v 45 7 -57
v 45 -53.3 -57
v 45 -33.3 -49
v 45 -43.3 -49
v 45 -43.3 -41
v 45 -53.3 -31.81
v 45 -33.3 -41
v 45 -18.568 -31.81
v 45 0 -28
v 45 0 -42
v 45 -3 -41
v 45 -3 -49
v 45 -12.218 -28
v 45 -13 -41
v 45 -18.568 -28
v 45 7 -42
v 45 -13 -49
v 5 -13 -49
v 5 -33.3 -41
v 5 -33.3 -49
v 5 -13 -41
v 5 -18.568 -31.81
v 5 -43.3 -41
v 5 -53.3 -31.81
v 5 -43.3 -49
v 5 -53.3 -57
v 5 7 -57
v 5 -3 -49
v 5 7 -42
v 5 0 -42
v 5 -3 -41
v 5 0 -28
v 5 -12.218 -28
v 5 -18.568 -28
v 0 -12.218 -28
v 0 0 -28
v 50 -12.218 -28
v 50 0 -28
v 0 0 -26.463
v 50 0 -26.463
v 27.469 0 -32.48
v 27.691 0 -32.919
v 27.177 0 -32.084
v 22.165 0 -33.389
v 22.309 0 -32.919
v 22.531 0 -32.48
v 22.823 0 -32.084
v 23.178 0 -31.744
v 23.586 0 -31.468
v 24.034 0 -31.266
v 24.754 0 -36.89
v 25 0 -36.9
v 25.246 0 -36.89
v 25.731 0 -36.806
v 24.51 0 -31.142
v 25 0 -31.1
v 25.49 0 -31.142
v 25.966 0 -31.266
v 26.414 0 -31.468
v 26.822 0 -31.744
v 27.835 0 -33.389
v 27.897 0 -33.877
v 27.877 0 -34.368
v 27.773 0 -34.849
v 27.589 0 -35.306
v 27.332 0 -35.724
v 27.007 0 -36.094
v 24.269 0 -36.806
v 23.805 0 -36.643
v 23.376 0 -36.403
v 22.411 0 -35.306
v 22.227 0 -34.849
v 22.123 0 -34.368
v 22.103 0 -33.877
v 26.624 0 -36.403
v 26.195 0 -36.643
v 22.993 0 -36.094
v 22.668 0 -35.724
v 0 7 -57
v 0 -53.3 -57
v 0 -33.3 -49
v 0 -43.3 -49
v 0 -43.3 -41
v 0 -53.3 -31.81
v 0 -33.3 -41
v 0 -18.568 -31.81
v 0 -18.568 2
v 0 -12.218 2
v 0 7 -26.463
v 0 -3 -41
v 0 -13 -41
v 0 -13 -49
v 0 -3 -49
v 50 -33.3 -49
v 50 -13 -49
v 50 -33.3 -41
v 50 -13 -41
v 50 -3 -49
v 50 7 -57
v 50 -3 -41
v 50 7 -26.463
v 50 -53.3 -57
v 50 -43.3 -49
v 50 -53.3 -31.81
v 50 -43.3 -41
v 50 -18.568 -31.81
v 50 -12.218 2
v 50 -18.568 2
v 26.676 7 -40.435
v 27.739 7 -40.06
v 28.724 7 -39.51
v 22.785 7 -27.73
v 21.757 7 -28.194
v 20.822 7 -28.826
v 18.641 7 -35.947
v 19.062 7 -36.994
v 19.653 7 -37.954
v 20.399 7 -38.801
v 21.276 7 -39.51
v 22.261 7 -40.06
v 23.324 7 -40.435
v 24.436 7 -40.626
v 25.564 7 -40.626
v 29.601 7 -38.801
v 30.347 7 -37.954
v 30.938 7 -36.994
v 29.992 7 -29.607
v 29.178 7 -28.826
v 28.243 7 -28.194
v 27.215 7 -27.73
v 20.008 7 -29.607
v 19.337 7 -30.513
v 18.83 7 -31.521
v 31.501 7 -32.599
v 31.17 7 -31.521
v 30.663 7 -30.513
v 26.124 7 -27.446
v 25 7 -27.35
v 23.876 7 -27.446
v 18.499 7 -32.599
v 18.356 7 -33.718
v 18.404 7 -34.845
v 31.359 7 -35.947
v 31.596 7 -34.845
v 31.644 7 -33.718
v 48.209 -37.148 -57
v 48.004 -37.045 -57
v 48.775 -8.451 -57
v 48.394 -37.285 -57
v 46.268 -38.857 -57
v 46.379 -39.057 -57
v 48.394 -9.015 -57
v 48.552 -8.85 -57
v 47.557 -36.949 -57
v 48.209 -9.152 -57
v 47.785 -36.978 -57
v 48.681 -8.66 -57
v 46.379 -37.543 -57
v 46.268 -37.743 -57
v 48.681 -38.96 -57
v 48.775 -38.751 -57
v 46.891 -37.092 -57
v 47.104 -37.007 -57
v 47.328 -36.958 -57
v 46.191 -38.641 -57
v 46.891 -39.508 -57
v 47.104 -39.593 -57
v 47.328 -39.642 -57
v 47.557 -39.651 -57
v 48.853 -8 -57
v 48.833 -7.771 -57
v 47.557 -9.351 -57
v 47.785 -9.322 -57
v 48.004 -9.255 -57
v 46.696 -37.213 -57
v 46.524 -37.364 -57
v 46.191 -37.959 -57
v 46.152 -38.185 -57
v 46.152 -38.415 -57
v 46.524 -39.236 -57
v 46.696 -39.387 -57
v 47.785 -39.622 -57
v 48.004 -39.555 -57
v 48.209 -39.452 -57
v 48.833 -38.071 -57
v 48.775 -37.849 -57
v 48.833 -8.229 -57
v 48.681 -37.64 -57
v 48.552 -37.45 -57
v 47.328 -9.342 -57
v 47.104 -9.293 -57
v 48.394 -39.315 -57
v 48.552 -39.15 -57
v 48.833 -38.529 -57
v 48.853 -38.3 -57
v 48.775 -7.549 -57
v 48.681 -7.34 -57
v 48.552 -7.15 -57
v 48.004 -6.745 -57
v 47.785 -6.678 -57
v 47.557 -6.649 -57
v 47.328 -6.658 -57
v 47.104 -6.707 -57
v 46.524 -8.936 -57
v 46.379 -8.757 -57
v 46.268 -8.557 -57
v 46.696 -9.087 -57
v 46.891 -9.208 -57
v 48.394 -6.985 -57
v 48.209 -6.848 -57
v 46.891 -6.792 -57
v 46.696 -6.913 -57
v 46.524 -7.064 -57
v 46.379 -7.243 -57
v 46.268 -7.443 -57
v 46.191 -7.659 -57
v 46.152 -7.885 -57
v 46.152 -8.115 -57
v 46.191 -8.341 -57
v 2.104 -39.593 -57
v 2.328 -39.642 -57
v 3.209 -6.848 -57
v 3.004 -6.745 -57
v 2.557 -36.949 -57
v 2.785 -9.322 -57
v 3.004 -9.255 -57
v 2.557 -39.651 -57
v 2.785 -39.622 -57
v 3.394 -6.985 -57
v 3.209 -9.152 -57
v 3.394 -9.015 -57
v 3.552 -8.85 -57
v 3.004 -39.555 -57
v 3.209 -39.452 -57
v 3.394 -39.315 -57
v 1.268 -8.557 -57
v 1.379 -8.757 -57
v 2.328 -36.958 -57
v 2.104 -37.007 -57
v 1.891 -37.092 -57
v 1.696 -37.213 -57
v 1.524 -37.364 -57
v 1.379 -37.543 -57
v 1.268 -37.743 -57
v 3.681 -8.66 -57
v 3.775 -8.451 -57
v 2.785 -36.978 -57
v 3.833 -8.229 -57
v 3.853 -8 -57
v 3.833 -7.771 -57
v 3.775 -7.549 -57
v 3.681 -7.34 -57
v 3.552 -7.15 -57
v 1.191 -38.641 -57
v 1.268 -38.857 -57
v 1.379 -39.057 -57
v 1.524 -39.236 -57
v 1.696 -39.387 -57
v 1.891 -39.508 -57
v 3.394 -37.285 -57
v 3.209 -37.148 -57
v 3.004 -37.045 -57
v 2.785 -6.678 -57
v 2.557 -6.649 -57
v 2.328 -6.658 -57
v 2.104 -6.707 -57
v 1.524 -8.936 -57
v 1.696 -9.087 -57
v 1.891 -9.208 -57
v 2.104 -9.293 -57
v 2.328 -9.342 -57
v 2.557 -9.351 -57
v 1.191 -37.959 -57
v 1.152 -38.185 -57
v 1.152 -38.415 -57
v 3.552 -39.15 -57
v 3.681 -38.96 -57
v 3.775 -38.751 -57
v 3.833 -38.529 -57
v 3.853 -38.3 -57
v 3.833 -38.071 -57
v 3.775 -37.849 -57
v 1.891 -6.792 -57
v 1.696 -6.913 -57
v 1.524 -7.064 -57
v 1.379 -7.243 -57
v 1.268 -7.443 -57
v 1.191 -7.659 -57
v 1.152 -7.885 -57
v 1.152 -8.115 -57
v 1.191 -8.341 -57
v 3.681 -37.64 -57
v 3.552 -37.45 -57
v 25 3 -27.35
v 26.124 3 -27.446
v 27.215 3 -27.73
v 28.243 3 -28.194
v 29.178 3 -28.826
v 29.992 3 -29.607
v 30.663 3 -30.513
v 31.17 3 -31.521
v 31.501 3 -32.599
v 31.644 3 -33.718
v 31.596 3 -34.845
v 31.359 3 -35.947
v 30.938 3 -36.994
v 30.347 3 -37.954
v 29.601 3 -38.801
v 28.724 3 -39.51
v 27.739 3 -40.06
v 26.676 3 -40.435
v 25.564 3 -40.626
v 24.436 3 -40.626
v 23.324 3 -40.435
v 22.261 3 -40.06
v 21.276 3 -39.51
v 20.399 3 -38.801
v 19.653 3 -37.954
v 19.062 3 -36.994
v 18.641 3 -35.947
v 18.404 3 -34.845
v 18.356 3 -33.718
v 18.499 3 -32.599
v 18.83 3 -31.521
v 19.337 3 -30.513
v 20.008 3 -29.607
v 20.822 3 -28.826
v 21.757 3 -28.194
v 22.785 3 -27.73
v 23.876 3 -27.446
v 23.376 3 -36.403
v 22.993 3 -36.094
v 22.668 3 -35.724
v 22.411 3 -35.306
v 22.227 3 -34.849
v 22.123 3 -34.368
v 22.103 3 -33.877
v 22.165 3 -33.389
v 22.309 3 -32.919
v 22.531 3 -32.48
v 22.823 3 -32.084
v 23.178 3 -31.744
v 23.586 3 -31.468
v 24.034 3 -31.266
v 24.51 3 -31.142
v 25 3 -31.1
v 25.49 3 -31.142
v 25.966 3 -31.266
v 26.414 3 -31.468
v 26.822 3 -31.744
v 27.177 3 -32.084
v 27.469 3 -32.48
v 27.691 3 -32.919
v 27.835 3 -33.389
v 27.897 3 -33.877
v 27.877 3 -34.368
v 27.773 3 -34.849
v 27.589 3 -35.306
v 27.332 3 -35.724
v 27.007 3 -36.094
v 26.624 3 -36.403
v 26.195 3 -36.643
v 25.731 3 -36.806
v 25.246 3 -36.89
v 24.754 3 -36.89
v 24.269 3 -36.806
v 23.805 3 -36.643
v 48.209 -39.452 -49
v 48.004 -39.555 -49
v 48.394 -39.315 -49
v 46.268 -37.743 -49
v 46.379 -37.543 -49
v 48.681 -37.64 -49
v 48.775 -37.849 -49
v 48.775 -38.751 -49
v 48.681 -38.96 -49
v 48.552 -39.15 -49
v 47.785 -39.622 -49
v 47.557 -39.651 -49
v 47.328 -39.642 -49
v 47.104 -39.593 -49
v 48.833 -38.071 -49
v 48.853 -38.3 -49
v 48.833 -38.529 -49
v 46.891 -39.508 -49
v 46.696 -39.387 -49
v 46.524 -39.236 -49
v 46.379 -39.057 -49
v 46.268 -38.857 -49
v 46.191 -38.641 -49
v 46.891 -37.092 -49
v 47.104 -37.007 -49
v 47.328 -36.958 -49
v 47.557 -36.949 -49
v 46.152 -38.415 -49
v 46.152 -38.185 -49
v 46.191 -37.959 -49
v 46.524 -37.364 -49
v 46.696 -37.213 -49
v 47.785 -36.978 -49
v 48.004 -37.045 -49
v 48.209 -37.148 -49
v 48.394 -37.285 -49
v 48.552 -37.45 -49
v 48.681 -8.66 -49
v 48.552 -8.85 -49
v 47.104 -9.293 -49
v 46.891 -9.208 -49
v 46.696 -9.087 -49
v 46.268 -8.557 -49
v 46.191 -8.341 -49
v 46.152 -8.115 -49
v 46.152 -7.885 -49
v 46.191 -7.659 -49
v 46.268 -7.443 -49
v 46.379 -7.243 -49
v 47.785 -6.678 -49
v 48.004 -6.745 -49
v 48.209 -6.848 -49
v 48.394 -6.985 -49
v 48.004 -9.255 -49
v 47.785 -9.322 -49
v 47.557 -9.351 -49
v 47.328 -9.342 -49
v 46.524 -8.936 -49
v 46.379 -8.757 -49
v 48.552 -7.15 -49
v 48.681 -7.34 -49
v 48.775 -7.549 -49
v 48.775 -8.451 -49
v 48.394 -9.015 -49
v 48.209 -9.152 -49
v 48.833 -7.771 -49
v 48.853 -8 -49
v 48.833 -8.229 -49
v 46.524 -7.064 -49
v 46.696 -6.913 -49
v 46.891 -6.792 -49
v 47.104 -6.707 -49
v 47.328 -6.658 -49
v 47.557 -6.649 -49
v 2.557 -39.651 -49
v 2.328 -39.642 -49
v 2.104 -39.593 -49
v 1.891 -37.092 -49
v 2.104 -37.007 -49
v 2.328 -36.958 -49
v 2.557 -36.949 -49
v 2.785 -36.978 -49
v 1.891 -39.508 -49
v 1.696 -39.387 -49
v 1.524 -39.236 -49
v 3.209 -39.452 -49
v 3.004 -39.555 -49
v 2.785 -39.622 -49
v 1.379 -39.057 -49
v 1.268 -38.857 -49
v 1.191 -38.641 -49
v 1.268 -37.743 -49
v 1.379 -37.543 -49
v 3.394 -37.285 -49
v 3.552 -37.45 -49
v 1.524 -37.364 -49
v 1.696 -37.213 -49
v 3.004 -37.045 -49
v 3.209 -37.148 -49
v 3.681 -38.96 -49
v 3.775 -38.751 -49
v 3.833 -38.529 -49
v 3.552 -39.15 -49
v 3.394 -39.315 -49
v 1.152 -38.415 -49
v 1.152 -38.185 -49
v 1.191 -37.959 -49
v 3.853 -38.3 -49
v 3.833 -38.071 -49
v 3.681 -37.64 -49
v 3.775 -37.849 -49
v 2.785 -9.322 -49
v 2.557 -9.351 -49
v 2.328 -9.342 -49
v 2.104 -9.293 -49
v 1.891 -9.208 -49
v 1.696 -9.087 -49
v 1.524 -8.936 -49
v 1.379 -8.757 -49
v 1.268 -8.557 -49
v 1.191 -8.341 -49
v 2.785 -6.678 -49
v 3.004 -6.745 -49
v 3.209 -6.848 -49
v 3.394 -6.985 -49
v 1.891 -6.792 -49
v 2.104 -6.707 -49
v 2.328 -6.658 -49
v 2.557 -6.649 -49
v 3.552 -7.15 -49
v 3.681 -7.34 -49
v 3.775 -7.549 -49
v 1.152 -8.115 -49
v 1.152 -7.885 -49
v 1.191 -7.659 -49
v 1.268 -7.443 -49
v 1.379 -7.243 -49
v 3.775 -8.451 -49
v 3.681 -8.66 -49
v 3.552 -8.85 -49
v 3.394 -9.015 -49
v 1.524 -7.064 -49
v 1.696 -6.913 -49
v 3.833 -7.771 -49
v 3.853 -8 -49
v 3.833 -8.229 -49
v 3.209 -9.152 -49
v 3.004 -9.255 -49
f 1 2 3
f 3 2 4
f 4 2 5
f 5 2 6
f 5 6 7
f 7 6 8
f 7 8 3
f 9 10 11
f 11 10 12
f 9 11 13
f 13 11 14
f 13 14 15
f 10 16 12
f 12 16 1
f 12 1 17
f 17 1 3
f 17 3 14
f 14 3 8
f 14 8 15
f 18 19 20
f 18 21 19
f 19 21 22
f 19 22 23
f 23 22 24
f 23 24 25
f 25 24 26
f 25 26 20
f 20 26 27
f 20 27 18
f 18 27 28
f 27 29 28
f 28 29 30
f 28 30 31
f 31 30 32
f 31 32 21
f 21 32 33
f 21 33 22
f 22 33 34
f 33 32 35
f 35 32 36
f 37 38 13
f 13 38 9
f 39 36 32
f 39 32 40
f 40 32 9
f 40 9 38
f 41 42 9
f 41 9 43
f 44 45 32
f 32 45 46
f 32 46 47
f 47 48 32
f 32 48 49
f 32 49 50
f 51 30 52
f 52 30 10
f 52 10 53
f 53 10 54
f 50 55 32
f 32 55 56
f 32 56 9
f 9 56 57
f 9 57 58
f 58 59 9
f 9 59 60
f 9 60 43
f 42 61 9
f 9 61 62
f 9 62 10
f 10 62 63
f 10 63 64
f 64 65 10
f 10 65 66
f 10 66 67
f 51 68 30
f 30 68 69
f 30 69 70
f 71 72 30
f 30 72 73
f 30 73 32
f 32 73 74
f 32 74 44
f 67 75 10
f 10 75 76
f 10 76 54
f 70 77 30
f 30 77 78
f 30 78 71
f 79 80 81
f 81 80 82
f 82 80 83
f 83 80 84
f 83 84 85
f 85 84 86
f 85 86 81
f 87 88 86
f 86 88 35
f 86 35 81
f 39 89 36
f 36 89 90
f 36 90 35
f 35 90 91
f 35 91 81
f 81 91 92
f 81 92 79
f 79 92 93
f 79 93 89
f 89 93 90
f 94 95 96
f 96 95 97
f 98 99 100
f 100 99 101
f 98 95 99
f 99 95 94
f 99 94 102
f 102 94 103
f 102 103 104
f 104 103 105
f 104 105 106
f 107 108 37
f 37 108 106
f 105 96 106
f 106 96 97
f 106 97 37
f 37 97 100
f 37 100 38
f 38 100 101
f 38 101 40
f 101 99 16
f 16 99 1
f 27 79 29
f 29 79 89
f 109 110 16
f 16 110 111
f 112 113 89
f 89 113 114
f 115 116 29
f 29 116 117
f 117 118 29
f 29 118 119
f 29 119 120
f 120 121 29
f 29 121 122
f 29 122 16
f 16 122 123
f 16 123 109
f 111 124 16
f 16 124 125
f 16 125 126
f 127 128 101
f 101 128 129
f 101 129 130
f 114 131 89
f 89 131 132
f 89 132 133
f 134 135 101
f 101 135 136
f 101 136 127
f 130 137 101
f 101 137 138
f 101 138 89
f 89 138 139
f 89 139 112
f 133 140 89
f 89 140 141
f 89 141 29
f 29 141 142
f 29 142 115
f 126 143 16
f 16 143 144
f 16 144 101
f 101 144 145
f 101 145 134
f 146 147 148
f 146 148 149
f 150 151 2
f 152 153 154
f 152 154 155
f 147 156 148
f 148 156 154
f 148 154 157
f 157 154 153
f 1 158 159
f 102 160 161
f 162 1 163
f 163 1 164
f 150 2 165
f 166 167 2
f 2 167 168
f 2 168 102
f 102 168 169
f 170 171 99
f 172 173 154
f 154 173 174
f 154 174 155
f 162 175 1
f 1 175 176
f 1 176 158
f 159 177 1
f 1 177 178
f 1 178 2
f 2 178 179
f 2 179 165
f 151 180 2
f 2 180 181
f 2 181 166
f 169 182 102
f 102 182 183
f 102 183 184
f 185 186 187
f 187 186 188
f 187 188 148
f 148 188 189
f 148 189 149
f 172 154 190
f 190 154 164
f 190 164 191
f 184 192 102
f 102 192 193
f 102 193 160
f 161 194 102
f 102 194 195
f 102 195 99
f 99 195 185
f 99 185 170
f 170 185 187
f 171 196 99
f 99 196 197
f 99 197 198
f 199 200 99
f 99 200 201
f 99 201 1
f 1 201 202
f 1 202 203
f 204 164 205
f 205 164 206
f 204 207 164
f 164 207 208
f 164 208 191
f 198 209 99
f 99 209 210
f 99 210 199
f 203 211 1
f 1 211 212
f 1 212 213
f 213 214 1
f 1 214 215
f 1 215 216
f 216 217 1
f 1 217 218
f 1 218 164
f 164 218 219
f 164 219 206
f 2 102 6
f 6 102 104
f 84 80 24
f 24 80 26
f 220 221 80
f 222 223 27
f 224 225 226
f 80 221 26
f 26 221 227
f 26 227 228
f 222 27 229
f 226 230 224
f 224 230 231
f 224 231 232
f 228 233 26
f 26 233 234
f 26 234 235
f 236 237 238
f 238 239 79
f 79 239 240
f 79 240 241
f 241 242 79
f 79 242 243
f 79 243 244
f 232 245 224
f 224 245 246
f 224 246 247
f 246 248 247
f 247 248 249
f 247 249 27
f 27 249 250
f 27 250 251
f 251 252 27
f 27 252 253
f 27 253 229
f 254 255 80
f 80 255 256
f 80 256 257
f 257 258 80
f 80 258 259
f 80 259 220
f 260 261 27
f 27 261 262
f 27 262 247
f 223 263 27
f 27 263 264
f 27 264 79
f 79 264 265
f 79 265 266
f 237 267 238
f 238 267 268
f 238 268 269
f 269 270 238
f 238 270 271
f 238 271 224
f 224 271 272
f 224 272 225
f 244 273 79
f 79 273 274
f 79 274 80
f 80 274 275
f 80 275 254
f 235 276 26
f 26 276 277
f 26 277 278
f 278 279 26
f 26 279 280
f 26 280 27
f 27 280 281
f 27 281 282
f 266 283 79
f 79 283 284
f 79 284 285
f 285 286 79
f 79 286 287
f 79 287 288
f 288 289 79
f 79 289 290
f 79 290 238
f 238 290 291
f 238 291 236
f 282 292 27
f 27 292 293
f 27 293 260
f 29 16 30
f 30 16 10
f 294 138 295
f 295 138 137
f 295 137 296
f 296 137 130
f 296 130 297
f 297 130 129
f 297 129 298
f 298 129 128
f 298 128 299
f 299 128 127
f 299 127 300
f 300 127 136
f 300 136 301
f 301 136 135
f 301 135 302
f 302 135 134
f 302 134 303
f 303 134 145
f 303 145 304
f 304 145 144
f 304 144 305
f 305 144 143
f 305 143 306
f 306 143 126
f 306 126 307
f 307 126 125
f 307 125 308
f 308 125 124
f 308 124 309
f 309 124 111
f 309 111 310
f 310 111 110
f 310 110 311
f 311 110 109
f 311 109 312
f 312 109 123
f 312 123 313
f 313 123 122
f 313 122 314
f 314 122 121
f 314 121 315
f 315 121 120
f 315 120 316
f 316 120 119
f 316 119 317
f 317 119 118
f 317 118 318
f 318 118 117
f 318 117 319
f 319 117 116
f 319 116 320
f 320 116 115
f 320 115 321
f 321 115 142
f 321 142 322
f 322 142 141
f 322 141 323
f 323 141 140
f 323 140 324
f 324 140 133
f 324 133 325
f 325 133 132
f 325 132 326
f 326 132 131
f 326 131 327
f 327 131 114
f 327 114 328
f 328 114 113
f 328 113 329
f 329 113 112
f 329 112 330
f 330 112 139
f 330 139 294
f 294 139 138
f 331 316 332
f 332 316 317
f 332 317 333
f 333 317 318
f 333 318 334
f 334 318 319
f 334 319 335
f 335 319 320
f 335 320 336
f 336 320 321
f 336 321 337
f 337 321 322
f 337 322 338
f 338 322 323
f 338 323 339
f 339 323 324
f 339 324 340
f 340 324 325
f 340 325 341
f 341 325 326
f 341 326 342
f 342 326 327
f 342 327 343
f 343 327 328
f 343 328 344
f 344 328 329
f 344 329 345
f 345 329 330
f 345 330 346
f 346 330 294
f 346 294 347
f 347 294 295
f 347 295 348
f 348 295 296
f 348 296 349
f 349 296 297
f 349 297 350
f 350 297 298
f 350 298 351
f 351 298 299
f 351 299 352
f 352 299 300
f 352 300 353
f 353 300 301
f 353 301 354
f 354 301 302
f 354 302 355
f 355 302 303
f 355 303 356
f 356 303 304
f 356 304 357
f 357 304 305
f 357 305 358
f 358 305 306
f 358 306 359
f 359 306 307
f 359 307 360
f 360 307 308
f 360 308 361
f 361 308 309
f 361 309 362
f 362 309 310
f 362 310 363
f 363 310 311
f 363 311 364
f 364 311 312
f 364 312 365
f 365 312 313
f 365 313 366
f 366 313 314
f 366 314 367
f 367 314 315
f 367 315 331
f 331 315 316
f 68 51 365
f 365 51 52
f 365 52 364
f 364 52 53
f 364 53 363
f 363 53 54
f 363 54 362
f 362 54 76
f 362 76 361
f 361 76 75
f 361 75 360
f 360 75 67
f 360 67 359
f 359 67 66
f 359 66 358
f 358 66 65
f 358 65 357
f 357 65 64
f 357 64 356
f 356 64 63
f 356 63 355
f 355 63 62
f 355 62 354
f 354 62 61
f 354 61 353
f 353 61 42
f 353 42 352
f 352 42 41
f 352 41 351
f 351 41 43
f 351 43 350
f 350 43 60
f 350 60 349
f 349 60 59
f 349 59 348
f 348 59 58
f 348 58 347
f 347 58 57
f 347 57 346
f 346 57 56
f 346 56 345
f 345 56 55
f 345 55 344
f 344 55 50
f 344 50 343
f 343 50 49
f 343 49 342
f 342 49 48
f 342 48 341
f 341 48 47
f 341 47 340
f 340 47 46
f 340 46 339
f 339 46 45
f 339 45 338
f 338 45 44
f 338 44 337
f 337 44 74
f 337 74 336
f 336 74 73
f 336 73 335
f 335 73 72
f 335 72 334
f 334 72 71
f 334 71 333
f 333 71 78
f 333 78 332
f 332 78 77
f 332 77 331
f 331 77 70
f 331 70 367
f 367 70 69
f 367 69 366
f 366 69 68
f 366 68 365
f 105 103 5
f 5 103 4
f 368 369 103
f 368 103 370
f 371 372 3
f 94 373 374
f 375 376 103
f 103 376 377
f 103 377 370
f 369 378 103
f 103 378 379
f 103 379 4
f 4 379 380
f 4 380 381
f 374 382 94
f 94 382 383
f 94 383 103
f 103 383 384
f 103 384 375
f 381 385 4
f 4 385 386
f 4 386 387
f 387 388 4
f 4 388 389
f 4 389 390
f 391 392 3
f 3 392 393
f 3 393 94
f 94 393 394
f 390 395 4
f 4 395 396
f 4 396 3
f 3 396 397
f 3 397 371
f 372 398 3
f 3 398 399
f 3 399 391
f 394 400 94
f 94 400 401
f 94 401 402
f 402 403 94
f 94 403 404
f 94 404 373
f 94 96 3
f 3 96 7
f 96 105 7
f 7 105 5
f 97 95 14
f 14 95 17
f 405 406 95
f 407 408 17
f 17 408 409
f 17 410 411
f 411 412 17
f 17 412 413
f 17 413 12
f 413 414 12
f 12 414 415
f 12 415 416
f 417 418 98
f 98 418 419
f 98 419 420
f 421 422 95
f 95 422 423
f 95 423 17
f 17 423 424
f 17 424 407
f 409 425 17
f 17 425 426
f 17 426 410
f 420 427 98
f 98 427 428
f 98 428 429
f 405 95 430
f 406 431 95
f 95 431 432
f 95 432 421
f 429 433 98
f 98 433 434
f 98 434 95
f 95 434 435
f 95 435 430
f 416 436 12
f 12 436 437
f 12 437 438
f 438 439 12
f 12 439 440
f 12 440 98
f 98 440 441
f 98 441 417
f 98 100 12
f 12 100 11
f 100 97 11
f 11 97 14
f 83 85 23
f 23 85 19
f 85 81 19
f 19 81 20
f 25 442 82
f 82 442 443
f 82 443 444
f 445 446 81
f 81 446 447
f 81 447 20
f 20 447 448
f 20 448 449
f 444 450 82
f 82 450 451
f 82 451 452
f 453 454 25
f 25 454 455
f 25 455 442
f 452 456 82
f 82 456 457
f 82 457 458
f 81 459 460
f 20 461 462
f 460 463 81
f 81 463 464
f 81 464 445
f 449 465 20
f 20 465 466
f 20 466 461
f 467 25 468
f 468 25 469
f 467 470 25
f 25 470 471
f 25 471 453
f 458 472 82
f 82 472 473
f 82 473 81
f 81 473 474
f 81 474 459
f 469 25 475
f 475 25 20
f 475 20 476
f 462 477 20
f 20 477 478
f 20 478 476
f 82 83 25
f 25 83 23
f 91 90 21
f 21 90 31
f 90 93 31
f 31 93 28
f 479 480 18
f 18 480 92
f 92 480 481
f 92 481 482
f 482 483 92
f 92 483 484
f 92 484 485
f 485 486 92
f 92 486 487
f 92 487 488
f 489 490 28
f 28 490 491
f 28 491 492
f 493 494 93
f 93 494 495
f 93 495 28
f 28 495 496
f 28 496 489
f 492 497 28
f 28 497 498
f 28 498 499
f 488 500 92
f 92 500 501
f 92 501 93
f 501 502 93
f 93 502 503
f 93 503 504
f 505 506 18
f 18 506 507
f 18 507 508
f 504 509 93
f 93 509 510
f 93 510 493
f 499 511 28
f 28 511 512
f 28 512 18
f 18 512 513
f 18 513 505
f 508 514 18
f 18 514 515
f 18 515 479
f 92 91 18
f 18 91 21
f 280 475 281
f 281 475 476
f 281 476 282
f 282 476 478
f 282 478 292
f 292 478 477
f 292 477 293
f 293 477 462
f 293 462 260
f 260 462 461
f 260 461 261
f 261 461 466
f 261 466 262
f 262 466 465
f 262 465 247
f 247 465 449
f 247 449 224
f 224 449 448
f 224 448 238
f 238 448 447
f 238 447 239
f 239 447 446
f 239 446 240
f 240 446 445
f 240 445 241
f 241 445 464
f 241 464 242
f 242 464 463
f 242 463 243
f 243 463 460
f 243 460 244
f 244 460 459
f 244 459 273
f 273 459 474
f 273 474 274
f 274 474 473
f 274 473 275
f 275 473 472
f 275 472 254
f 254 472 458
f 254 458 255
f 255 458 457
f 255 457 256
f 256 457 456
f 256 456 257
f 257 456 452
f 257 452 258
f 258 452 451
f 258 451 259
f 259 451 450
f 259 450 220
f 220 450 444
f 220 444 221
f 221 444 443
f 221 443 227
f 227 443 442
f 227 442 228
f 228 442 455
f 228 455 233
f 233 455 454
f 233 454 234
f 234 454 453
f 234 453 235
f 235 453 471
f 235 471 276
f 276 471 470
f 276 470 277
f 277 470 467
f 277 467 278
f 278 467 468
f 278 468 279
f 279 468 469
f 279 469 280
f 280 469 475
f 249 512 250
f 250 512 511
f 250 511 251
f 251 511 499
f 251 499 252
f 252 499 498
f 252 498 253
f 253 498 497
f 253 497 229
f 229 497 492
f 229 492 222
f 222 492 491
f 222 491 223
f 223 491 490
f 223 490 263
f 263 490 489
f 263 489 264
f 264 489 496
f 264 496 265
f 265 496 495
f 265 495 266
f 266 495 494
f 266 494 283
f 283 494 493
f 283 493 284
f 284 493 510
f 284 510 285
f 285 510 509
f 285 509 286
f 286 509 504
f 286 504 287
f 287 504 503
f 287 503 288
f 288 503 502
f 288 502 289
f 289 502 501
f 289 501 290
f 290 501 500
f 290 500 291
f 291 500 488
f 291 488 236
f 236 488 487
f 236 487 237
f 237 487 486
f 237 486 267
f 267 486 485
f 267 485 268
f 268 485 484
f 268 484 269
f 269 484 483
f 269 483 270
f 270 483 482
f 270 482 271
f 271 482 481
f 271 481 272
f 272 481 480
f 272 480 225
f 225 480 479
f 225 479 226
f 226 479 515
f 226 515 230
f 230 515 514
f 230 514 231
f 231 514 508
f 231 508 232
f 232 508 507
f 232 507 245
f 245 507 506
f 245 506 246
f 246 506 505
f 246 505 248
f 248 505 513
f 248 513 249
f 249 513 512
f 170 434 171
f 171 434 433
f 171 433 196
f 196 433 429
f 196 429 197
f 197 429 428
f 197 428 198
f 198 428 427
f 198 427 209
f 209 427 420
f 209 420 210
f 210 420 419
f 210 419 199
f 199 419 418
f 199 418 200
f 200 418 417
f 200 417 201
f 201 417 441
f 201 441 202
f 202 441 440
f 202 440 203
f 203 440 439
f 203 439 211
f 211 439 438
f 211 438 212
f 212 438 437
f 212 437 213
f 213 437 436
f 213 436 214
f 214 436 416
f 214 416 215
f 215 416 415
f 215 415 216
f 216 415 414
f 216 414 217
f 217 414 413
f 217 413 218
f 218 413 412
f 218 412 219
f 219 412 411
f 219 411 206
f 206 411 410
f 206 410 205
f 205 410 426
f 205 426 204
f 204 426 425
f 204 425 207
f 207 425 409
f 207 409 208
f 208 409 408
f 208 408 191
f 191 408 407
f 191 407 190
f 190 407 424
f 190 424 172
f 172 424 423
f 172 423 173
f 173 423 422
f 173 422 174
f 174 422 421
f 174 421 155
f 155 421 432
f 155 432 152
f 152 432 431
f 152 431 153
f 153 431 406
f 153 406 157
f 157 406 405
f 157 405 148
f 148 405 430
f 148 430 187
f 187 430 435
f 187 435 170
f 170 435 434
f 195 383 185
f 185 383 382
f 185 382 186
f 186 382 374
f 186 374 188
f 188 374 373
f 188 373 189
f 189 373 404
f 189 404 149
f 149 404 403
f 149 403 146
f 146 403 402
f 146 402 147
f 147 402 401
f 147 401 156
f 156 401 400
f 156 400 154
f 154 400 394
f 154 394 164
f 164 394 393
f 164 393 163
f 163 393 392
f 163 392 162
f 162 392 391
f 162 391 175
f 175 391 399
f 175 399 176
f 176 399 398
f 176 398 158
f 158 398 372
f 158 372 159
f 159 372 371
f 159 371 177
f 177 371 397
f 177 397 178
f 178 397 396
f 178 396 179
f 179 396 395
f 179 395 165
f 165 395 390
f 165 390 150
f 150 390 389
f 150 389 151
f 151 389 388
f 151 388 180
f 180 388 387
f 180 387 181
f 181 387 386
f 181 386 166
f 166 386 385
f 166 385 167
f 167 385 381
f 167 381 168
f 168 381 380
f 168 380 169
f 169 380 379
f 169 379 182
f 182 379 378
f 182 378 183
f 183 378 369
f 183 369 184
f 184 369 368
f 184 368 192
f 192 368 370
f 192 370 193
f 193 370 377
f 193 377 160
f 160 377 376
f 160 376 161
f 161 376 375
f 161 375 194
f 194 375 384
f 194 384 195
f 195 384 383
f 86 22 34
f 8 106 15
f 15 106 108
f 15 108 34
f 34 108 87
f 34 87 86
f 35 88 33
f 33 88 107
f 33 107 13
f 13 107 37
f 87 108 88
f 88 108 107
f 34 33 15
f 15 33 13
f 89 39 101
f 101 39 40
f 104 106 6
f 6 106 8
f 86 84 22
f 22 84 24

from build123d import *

# Parameters (mm, degrees)
SKETCH1_W                 = 50
SKETCH1_H                 = 30
BOSS_EXTRUDE1_DEPTH       = 7
SKETCH2_W                 = 27
SKETCH2_H                 = 60.3
BOSS_EXTRUDE2_DEPTH       = 5
SKETCH3_W                 = 40
SKETCH3_H                 = 7
BOSS_EXTRUDE3_DEPTH       = 12
SKETCH4_R                 = 6.65
CUT_EXTRUDE1_DEPTH        = 4
CUT_EXTRUDE2_REACH        = 96.439
SKETCH5_R                 = 2.9
SKETCH6_W                 = 8
SKETCH6_H                 = 10
CUT_EXTRUDE3_DEPTH        = 93.681659459
F_2_CLEARANCE_HOLE1_D     = 2.7051
F_2_CLEARANCE_HOLE1_DEPTH = 8
SKETCH10_W                = 50
SKETCH10_H                = 7
BOSS_EXTRUDE4_DEPTH       = 2
SKETCH11_W                = 5
SKETCH11_H                = 53.3
BOSS_EXTRUDE5_DEPTH       = 2
SKETCH13_W                = 5
SKETCH13_H                = 6.35
BOSS_EXTRUDE6_DEPTH       = 30
SKETCH14_W                = 30
SKETCH14_H                = 6.35
BOSS_EXTRUDE7_DEPTH       = 40
SKETCH15_W                = 28.462792601
SKETCH15_H                = 7
CUT_EXTRUDE4_DEPTH        = 93.681659459
SKETCH16_W                = 3.81
SKETCH16_H                = 34.732
CUT_EXTRUDE5_DEPTH        = 93.681659459


with BuildPart() as part:
    # Sketch1 → Boss-Extrude1 (new body)
    with BuildSketch(Plane(origin=(0, 0, 0), x_dir=(1, 0, 0), z_dir=(0, 1, 0))):
        with Locations((25, 15)):
            Rectangle(SKETCH1_W, SKETCH1_H)
    extrude(amount=BOSS_EXTRUDE1_DEPTH)

    # Sketch2 → Boss-Extrude2 (add)
    with BuildSketch(Plane(origin=(50, 0, 0), x_dir=(0, 0, -1), z_dir=(1, 0, 0))):
        with Locations((43.5, -23.15)):
            Rectangle(SKETCH2_W, SKETCH2_H)
    boss_extrude2 = extrude(amount=-BOSS_EXTRUDE2_DEPTH)

    # Mirror1: Boss-Extrude2 across plane
    add(boss_extrude2.mirror(Plane(origin=(25, 0, 0), x_dir=(0, 0, 1), z_dir=(1, 0, 0))))

    # Sketch3 → Boss-Extrude3 (add)
    with BuildSketch(Plane(origin=(0, 0, -30), x_dir=(-1, 0, 0), z_dir=(0, 0, -1))):
        with Locations((-25, 3.5)):
            Rectangle(SKETCH3_W, SKETCH3_H)
    extrude(amount=BOSS_EXTRUDE3_DEPTH)

    # Sketch4 → Cut-Extrude1 (cut)
    with BuildSketch(Plane(origin=(0, 7, 0), x_dir=(1, 0, 0), z_dir=(0, 1, 0))):
        with Locations(Location((25, 34, 0), (0, 0, 270))):
            Circle(SKETCH4_R)
    extrude(amount=-CUT_EXTRUDE1_DEPTH, mode=Mode.SUBTRACT)

    # Sketch5 → Cut-Extrude2 (cut, up to next)
    with BuildSketch(Plane(origin=(0, 3, 0), x_dir=(1, 0, 0), z_dir=(0, 1, 0)), mode=Mode.PRIVATE) as cut_extrude2_sk1:
        with Locations(Location((25, 34, 0), (0, 0, 270))):
            Circle(SKETCH5_R)
    cut_extrude2_tool1 = extrude(cut_extrude2_sk1.sketch, amount=-CUT_EXTRUDE2_REACH, mode=Mode.PRIVATE) & part.part
    add(cut_extrude2_tool1.solids().sort_by_distance((25, 3, -34))[0], mode=Mode.SUBTRACT)

    # Sketch6 → Cut-Extrude3 (cut, through all)
    with BuildSketch(Plane(origin=(50, 0, 0), x_dir=(0, 0, -1), z_dir=(1, 0, 0))):
        with Locations((45, -8)):
            Rectangle(SKETCH6_W, SKETCH6_H)
        with Locations((45, -38.3)):
            Rectangle(SKETCH6_W, SKETCH6_H)
    extrude(amount=-CUT_EXTRUDE3_DEPTH, mode=Mode.SUBTRACT)

    # #2 Clearance Hole1
    with Locations(Plane.XY.offset(-49)):
        with Locations((47.5, -38.3), (47.5, -8), (2.5, -8), (2.5, -38.3)):
            Hole(F_2_CLEARANCE_HOLE1_D / 2, depth=F_2_CLEARANCE_HOLE1_DEPTH)

    # Sketch10 → Boss-Extrude4 (add)
    with BuildSketch(Plane.XY):
        with Locations((25, 3.5)):
            Rectangle(SKETCH10_W, SKETCH10_H)
    extrude(amount=BOSS_EXTRUDE4_DEPTH)

    # Sketch11 → Boss-Extrude5 (add)
    with BuildSketch(Plane.XY.offset(-30)):
        with Locations((47.5, -26.65)):
            Rectangle(SKETCH11_W, SKETCH11_H)
        with Locations((2.5, -26.65)):
            Rectangle(SKETCH11_W, SKETCH11_H)
    extrude(amount=BOSS_EXTRUDE5_DEPTH)

    # Sketch13 → Boss-Extrude6 (add)
    with BuildSketch(Plane.XY.offset(-28)):
        with Locations((47.5, -15.393)):
            Rectangle(SKETCH13_W, SKETCH13_H)
        with Locations((2.5, -15.393)):
            Rectangle(SKETCH13_W, SKETCH13_H)
    extrude(amount=BOSS_EXTRUDE6_DEPTH)

    # Sketch14 → Boss-Extrude7 (add)
    with BuildSketch(Plane.ZY.offset(-45)):
        with Locations((-13, -15.393)):
            Rectangle(SKETCH14_W, SKETCH14_H)
    extrude(amount=BOSS_EXTRUDE7_DEPTH)

    # Sketch15 → Cut-Extrude4 (cut, through all)
    with BuildSketch(Plane(origin=(50, 0, 0), x_dir=(0, 0, -1), z_dir=(1, 0, 0))):
        with Locations((12.231396301, 3.5)):
            Rectangle(SKETCH15_W, SKETCH15_H)
    extrude(amount=-CUT_EXTRUDE4_DEPTH, mode=Mode.SUBTRACT)

    # Sketch16 → Cut-Extrude5 (cut, through all)
    with BuildSketch(Plane(origin=(50, 0, 0), x_dir=(0, 0, -1), z_dir=(1, 0, 0))):
        with Locations((29.905, -35.934)):
            Rectangle(SKETCH16_W, SKETCH16_H)
    extrude(amount=-CUT_EXTRUDE5_DEPTH, mode=Mode.SUBTRACT)


solid = part.part
